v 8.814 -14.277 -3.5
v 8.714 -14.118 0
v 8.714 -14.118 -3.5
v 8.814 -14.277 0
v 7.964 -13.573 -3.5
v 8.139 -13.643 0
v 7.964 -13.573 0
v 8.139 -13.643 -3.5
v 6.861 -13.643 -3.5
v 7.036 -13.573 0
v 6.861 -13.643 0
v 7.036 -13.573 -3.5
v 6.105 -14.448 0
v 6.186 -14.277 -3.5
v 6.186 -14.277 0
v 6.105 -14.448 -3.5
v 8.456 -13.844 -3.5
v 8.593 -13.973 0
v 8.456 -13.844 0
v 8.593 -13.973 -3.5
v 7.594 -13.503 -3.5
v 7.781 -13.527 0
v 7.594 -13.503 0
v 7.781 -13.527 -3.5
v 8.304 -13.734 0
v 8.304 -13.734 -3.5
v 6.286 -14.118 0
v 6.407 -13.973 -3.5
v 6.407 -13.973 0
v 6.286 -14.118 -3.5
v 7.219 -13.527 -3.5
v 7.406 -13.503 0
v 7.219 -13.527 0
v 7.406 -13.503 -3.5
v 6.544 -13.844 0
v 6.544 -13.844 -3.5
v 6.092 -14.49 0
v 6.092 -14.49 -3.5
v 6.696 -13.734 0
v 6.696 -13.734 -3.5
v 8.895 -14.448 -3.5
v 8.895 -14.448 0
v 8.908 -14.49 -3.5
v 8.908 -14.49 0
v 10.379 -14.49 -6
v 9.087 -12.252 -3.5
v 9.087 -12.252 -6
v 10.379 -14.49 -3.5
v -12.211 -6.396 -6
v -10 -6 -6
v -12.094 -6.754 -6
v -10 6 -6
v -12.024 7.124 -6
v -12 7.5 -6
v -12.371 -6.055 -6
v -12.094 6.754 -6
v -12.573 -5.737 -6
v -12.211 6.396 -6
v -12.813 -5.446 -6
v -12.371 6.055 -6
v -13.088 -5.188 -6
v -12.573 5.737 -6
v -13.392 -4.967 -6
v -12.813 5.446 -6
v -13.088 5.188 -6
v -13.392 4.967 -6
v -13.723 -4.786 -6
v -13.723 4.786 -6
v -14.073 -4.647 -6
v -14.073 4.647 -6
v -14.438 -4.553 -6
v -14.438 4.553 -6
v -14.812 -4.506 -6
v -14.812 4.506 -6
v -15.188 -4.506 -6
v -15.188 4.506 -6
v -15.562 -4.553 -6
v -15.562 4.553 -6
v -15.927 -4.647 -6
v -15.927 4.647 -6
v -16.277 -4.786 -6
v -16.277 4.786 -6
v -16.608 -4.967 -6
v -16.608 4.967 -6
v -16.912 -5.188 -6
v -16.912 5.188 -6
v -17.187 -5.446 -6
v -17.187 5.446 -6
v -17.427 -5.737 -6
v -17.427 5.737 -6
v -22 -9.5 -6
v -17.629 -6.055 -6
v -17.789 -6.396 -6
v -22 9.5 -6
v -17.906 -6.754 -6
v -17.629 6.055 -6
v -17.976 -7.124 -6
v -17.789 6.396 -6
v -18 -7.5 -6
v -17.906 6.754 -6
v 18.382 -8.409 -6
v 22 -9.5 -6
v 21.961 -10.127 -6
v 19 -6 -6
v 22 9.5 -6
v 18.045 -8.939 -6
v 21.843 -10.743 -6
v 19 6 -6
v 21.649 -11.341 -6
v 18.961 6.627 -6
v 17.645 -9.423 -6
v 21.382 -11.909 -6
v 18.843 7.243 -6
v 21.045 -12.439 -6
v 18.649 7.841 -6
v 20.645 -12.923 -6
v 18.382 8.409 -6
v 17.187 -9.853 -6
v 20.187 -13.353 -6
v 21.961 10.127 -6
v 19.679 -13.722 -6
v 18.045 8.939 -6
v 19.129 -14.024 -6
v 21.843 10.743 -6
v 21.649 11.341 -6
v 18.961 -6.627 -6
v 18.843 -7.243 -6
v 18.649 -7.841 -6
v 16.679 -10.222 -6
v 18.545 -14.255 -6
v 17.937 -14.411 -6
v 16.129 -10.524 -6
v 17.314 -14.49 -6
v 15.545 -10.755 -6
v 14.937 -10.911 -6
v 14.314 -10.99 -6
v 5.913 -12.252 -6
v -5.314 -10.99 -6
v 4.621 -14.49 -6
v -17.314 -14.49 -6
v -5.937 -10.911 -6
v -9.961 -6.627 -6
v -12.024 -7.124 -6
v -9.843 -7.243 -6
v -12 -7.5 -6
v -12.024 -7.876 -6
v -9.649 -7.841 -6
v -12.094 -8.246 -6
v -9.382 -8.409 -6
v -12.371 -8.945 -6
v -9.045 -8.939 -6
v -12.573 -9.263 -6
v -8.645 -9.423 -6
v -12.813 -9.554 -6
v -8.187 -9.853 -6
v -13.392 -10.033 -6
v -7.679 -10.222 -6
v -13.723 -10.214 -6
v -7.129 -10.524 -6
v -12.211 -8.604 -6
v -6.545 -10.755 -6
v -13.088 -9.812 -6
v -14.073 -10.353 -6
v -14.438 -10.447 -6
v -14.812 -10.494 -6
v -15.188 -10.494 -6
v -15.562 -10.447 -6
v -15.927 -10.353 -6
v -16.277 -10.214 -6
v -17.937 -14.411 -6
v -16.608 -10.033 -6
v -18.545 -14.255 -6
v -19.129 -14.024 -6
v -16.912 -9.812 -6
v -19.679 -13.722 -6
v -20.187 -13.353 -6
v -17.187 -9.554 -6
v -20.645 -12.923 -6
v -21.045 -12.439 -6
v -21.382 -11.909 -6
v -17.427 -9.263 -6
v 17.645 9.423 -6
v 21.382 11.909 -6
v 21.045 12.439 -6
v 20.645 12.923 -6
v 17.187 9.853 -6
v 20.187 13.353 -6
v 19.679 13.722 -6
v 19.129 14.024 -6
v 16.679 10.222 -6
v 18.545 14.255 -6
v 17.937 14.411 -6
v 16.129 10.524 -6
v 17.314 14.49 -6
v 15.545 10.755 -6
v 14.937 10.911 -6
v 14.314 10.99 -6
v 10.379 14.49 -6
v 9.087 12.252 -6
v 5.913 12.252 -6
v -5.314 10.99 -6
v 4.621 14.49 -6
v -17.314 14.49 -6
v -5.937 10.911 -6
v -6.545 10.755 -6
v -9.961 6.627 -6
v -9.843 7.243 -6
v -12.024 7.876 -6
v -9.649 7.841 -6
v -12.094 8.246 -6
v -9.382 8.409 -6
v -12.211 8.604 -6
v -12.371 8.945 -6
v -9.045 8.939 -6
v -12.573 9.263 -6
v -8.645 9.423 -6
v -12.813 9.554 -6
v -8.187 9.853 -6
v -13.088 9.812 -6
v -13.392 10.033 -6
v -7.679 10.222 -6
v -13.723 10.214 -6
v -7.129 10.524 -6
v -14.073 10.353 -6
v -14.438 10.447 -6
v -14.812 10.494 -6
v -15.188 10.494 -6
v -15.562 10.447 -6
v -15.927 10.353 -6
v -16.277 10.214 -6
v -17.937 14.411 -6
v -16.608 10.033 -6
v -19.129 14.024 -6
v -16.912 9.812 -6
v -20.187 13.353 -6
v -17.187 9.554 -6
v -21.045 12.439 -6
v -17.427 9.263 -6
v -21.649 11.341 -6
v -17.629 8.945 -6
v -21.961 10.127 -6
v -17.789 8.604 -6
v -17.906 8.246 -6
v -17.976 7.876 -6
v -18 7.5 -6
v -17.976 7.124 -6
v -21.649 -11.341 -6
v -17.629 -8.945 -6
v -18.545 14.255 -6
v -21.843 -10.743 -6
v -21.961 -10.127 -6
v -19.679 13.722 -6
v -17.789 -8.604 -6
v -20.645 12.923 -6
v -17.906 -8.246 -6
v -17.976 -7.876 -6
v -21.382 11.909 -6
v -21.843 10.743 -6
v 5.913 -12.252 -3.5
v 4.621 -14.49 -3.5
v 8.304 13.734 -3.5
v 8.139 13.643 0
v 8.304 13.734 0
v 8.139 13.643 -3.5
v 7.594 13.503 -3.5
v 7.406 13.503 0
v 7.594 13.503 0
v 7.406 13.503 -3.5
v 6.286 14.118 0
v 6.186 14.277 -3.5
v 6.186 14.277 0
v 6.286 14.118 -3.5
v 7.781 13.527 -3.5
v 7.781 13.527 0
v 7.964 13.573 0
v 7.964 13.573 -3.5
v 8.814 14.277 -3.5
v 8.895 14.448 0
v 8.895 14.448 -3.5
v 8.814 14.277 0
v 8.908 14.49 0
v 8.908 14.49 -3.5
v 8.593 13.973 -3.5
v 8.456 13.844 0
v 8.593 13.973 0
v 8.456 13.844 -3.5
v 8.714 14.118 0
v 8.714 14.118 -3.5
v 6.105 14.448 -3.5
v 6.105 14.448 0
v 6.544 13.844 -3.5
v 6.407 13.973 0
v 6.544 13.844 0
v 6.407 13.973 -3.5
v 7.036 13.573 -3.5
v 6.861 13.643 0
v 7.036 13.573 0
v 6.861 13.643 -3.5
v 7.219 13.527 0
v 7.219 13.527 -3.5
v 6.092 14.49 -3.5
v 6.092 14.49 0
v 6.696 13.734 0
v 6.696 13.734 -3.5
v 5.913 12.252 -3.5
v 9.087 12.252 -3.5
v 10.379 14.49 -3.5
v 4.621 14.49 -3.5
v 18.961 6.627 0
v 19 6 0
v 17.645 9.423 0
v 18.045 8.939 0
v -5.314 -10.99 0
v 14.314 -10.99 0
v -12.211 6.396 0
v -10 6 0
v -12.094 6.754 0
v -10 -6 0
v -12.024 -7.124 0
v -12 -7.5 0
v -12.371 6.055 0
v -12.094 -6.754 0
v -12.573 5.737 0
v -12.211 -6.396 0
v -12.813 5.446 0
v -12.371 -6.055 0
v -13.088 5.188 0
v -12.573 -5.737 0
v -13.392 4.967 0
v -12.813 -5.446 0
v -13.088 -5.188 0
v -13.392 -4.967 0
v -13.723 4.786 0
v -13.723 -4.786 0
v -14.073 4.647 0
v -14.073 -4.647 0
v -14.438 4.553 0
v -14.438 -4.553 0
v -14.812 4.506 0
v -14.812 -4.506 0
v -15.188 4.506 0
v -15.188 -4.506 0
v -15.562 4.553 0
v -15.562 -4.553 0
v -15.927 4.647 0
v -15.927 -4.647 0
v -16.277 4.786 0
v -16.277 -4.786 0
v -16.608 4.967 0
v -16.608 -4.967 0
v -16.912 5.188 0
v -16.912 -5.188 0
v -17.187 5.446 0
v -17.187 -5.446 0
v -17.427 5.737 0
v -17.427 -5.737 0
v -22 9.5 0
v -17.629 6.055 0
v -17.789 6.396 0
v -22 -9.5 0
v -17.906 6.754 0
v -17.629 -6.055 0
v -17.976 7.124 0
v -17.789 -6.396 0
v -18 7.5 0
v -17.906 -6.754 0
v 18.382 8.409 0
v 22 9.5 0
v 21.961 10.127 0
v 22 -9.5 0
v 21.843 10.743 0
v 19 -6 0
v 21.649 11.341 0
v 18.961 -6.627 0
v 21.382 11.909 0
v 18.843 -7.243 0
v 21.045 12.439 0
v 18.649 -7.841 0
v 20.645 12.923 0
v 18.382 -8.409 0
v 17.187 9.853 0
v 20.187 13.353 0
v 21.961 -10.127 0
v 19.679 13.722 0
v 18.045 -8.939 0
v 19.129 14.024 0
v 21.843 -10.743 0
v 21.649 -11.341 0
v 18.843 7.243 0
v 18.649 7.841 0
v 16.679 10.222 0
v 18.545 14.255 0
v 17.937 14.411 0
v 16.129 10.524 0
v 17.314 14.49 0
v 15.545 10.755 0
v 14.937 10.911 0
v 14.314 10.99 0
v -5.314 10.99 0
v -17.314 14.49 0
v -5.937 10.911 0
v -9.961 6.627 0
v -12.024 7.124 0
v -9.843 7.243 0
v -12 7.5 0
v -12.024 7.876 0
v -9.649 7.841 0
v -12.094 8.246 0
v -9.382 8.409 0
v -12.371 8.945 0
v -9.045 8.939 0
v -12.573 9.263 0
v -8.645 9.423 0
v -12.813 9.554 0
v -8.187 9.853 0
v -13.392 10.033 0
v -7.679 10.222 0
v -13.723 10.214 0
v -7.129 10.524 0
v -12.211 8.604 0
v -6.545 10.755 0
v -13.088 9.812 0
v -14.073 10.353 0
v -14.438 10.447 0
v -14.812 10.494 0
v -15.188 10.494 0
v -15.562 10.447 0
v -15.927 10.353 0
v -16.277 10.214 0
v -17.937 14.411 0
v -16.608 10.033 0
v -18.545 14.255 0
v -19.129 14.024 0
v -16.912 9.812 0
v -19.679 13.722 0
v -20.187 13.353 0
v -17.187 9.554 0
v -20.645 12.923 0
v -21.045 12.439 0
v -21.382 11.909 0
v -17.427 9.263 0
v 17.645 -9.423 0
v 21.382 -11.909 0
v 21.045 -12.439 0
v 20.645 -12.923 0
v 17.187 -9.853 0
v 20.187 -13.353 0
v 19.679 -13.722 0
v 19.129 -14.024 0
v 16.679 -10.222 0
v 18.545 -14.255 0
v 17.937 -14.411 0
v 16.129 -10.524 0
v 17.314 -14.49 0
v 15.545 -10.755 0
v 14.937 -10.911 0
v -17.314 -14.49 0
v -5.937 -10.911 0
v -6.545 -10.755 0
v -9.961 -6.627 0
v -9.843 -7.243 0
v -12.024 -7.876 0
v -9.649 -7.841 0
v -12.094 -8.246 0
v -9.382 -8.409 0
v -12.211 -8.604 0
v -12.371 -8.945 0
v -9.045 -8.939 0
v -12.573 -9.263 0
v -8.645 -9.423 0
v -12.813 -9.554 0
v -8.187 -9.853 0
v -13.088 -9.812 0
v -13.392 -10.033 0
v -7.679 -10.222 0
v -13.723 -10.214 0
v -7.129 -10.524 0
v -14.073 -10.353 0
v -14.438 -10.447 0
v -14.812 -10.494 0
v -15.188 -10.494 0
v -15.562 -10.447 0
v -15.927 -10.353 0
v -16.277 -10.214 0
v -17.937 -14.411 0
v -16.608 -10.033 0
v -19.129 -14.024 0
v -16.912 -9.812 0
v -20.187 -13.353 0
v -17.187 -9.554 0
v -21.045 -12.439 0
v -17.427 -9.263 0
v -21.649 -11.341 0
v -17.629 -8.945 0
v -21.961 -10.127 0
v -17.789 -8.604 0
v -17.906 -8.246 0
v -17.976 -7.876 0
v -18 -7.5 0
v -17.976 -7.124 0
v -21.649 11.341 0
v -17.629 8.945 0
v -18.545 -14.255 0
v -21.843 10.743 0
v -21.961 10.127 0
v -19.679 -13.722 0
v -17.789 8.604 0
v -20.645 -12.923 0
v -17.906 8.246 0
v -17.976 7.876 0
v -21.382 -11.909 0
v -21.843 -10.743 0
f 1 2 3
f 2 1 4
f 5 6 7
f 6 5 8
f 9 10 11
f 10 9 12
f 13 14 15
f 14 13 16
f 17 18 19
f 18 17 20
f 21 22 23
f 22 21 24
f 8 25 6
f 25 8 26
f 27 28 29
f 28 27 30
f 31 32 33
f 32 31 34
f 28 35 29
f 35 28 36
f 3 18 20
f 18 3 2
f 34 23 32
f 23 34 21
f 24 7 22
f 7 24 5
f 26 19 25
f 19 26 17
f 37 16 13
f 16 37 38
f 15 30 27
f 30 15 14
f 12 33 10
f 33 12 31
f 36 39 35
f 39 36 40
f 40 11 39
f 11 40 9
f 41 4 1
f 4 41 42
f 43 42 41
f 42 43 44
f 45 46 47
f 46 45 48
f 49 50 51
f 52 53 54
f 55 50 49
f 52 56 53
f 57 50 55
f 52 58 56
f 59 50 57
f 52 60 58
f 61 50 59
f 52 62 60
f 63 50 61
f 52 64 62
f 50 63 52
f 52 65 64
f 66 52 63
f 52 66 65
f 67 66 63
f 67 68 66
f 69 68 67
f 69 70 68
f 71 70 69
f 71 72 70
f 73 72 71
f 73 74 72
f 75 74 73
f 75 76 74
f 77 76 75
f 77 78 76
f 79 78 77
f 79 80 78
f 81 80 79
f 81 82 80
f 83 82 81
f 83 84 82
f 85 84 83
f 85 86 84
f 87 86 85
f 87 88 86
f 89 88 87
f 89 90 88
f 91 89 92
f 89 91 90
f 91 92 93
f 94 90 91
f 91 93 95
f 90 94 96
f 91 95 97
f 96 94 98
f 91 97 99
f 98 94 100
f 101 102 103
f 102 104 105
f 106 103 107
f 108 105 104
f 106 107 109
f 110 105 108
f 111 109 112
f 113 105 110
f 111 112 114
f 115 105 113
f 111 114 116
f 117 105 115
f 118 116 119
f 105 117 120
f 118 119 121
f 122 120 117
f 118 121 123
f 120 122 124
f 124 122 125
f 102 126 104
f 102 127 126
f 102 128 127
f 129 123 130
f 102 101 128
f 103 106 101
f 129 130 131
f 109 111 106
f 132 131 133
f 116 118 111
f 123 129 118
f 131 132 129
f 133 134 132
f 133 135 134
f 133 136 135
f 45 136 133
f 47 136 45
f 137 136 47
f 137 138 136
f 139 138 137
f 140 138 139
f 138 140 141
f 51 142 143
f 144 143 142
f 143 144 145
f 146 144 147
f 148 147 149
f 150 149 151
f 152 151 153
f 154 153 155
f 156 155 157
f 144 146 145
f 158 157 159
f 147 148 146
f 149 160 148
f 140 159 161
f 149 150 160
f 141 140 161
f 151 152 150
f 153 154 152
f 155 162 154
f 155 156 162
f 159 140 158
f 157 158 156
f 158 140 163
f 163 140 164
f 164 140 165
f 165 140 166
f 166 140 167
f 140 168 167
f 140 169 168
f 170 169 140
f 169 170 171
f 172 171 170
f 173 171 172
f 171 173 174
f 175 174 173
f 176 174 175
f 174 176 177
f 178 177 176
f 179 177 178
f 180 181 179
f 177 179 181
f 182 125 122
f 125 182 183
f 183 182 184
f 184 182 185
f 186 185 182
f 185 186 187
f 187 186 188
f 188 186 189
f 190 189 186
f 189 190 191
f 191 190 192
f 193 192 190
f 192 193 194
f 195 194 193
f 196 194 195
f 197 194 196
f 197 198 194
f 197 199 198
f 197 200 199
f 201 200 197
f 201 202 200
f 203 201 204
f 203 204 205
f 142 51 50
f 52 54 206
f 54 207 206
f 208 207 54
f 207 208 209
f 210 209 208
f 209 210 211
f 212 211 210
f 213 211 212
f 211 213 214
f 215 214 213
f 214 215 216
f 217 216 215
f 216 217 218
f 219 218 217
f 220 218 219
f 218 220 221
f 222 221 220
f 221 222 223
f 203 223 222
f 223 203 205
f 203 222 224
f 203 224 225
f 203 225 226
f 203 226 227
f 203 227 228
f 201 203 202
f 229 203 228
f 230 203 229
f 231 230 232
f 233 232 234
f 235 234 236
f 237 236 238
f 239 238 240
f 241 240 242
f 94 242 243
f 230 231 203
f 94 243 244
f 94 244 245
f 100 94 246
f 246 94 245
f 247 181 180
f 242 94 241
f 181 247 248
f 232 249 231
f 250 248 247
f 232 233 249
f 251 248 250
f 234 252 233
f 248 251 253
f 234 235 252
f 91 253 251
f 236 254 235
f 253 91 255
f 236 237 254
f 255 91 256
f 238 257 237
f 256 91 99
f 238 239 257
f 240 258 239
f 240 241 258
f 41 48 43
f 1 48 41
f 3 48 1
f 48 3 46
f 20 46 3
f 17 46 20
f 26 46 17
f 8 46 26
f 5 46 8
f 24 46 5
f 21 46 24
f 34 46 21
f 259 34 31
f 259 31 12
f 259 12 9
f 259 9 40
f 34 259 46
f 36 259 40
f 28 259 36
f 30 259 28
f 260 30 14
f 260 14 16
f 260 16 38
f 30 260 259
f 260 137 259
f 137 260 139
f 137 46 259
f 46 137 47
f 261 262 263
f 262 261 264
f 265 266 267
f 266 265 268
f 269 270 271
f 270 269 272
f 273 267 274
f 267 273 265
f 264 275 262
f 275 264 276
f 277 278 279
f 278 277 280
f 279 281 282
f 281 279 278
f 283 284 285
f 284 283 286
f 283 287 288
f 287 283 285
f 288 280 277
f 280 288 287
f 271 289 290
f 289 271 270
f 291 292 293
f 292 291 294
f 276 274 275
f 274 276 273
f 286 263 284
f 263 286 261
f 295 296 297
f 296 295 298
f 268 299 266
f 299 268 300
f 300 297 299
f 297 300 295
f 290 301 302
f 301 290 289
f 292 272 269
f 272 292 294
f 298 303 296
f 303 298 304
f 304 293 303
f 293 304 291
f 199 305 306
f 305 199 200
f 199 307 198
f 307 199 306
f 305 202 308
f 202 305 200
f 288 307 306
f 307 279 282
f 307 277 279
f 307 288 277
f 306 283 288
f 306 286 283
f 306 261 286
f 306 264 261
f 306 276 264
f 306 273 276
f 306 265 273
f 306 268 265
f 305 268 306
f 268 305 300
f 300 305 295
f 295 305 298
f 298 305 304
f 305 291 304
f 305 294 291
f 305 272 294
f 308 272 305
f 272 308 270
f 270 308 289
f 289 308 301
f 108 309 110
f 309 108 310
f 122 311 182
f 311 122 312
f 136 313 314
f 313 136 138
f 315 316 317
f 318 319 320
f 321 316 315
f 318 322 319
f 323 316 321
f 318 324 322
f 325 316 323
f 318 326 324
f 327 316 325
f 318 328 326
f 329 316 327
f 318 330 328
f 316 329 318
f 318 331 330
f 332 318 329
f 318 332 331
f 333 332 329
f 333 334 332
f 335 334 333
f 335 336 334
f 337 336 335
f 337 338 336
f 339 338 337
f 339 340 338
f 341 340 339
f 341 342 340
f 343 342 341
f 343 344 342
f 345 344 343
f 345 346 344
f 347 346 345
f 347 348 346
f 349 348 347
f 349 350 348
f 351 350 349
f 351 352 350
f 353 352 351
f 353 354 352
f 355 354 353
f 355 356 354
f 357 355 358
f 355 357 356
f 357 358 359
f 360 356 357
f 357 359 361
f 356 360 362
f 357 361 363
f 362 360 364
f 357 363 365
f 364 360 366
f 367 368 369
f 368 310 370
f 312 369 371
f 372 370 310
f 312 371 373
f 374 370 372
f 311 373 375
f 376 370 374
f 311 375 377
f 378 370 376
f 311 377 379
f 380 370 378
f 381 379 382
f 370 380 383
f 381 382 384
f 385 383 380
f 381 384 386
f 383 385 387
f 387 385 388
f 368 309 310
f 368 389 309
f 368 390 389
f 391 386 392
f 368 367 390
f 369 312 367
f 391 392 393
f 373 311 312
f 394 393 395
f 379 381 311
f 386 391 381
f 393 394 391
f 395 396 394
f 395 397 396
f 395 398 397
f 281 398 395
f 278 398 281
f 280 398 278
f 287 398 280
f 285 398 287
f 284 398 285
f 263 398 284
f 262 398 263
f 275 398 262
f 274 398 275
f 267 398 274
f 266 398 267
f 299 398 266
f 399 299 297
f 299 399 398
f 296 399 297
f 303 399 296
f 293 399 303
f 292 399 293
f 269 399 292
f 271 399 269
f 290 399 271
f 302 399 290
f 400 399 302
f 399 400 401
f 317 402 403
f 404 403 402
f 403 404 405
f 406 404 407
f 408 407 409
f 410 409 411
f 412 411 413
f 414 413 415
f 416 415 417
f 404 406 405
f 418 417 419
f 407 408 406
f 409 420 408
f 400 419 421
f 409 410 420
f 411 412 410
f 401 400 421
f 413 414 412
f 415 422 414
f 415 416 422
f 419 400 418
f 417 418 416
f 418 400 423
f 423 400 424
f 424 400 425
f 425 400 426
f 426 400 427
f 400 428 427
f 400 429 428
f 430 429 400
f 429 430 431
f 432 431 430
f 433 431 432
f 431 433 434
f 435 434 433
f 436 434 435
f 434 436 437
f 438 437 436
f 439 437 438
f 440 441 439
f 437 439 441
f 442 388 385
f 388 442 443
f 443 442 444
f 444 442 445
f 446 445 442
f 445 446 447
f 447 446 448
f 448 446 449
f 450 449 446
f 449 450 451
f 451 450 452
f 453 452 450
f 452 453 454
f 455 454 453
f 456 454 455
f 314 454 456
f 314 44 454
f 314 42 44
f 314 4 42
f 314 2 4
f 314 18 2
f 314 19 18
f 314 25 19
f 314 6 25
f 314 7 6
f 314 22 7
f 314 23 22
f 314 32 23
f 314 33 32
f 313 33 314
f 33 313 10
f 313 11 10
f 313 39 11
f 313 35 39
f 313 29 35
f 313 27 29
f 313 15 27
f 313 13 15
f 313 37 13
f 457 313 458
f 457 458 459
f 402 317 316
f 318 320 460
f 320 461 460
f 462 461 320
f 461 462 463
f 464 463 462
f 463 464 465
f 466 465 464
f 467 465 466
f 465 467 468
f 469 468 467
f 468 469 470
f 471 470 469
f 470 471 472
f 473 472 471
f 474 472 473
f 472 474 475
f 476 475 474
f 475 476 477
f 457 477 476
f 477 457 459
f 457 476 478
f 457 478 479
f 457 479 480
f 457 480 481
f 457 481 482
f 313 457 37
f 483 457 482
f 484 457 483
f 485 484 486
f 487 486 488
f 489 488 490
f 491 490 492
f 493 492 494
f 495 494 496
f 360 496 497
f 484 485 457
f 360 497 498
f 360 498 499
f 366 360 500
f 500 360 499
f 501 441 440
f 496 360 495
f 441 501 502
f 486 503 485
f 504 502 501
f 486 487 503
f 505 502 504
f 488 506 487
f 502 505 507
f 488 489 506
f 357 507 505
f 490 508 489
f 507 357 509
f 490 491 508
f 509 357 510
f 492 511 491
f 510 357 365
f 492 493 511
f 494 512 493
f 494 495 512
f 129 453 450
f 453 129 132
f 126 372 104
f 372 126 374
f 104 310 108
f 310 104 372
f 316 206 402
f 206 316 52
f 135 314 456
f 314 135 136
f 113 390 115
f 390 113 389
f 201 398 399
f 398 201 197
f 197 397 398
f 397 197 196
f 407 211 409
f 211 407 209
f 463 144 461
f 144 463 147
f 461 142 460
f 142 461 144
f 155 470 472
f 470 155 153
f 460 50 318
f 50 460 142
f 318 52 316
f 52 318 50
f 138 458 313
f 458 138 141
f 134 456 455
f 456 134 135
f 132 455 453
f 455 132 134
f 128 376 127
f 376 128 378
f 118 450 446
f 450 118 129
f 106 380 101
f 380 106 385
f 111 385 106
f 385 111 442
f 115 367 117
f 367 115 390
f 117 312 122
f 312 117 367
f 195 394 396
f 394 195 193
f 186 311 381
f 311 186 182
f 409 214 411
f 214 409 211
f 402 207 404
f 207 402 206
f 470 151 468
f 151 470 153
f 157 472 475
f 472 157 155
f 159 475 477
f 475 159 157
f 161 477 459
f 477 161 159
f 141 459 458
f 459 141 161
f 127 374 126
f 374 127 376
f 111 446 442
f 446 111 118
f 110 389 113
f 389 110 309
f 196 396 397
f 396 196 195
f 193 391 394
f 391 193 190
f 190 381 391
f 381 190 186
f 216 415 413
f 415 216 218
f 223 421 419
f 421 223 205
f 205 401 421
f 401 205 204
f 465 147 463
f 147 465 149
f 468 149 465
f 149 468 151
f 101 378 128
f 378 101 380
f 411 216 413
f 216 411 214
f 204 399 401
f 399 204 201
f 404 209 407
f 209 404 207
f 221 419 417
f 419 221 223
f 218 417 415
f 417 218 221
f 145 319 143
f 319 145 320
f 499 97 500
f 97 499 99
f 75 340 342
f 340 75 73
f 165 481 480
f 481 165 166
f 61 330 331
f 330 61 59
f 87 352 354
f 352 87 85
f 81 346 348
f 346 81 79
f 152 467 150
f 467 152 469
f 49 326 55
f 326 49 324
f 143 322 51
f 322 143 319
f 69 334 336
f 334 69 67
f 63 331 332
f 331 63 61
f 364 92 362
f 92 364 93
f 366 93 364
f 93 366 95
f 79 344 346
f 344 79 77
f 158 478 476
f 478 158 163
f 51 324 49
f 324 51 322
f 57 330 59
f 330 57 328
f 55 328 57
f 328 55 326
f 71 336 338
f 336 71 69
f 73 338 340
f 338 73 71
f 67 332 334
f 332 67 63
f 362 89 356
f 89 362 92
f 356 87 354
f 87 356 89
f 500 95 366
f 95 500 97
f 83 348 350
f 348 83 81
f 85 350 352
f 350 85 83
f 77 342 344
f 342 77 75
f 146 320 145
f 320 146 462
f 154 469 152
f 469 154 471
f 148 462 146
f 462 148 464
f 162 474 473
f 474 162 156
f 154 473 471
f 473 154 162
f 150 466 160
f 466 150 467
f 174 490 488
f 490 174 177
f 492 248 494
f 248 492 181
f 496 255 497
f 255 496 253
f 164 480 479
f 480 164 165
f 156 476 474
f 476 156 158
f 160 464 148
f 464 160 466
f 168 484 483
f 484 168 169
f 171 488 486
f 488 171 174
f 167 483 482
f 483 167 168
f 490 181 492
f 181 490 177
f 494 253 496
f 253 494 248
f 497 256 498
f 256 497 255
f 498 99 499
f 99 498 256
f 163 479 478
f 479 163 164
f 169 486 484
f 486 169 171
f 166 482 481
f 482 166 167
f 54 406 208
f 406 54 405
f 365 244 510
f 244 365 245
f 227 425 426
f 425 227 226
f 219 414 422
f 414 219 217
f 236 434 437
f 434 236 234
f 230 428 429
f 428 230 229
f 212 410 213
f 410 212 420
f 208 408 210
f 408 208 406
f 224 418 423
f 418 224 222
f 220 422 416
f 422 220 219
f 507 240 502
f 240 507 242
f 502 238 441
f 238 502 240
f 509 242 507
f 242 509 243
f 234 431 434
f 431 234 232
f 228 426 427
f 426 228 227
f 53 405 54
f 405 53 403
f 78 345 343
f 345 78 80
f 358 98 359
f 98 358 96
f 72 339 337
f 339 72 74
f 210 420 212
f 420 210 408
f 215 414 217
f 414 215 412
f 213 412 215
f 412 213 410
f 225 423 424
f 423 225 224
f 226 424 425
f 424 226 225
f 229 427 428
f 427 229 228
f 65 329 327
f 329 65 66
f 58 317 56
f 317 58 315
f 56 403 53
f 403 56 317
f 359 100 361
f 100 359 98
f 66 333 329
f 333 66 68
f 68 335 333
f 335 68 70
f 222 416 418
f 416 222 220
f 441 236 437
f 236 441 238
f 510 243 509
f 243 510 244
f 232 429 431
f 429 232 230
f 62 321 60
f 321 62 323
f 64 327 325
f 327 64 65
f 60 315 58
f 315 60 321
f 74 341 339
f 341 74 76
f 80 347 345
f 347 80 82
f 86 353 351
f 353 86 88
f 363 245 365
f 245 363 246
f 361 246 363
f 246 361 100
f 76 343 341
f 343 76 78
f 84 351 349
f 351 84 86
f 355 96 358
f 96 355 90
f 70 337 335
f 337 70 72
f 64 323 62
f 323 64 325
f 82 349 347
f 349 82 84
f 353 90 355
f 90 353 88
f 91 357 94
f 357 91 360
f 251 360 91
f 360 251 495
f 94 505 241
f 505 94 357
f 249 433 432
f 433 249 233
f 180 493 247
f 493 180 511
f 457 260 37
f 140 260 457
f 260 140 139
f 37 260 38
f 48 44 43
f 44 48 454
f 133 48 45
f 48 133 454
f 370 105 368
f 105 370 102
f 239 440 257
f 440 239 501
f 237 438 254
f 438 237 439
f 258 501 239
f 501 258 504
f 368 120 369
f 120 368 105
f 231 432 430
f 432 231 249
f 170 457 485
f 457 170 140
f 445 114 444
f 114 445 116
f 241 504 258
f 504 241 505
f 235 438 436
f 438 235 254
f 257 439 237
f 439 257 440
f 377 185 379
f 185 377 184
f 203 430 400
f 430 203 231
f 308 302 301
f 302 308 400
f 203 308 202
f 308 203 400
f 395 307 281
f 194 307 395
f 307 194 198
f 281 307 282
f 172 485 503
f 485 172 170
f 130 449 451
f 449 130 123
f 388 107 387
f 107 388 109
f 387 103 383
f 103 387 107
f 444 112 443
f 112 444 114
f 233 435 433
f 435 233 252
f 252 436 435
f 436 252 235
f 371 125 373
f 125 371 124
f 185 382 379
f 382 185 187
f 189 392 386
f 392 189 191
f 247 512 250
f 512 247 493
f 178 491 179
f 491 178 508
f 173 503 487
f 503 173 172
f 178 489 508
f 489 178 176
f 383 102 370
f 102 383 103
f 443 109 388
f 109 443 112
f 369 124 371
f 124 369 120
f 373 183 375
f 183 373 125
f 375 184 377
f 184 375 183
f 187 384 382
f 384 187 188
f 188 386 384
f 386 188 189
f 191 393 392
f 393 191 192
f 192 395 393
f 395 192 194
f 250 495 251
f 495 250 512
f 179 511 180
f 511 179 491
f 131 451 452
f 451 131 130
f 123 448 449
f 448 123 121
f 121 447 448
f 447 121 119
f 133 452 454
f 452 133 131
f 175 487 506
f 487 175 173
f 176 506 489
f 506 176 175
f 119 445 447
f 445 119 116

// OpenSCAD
$fn = 50;


difference() {
	union() {
		translate(v = [0, 0, -6]) {
			hull() {
				translate(v = [-17.0000000000, 9.5000000000, 0]) {
					cylinder(h = 6, r = 5);
				}
				translate(v = [17.0000000000, 9.5000000000, 0]) {
					cylinder(h = 6, r = 5);
				}
				translate(v = [-17.0000000000, -9.5000000000, 0]) {
					cylinder(h = 6, r = 5);
				}
				translate(v = [17.0000000000, -9.5000000000, 0]) {
					cylinder(h = 6, r = 5);
				}
			}
		}
	}
	union() {
		translate(v = [7.5000000000, -15, -6]) {
			rotate(a = [0, 0, 0]) {
				difference() {
					union() {
						translate(v = [0, 0, -50.0000000000]) {
							cylinder(h = 100, r = 1.5000000000);
						}
						translate(v = [0, 0, -50.0000000000]) {
							cylinder(h = 100, r = 1.5000000000);
						}
						linear_extrude(height = 2.5000000000) {
							polygon(points = [[3.1735000000, 0.0000000000], [1.5867500000, 2.7483316189], [-1.5867500000, 2.7483316189], [-3.1735000000, 0.0000000000], [-1.5867500000, -2.7483316189], [1.5867500000, -2.7483316189]]);
						}
						translate(v = [0, 0, -50.0000000000]) {
							cylinder(h = 100, r = 1.5000000000);
						}
					}
					union();
				}
			}
		}
		translate(v = [7.5000000000, 15, -6]) {
			rotate(a = [0, 0, 0]) {
				difference() {
					union() {
						translate(v = [0, 0, -50.0000000000]) {
							cylinder(h = 100, r = 1.5000000000);
						}
						translate(v = [0, 0, -50.0000000000]) {
							cylinder(h = 100, r = 1.5000000000);
						}
						linear_extrude(height = 2.5000000000) {
							polygon(points = [[3.1735000000, 0.0000000000], [1.5867500000, 2.7483316189], [-1.5867500000, 2.7483316189], [-3.1735000000, 0.0000000000], [-1.5867500000, -2.7483316189], [1.5867500000, -2.7483316189]]);
						}
						translate(v = [0, 0, -50.0000000000]) {
							cylinder(h = 100, r = 1.5000000000);
						}
					}
					union();
				}
			}
		}
		translate(v = [0, 0, -3]) {
			rotate(a = [0, 0, 180]) {
				difference() {
					union() {
						translate(v = [-4.5000000000, 0, -3]) {
							#hull() {
								translate(v = [-9.5000000000, 6.0000000000, 0]) {
									cylinder(h = 6, r = 5);
								}
								translate(v = [9.5000000000, 6.0000000000, 0]) {
									cylinder(h = 6, r = 5);
								}
								translate(v = [-9.5000000000, -6.0000000000, 0]) {
									cylinder(h = 6, r = 5);
								}
								translate(v = [9.5000000000, -6.0000000000, 0]) {
									cylinder(h = 6, r = 5);
								}
							}
						}
					}
					union();
				}
			}
		}
		translate(v = [-15.0000000000, -7.5000000000, -50.0000000000]) {
			cylinder(h = 100, r = 3.0000000000);
		}
		translate(v = [-15.0000000000, 7.5000000000, -50.0000000000]) {
			cylinder(h = 100, r = 3.0000000000);
		}
		translate(v = [-15.0000000000, 7.5000000000, -50.0000000000]) {
			cylinder(h = 100, r = 3.0000000000);
		}
		translate(v = [0.0000000000, 7.5000000000, -50.0000000000]) {
			cylinder(h = 100, r = 3.0000000000);
		}
		translate(v = [15.0000000000, 7.5000000000, -50.0000000000]) {
			cylinder(h = 100, r = 3.0000000000);
		}
		translate(v = [-15.0000000000, -7.5000000000, -50.0000000000]) {
			cylinder(h = 100, r = 3.0000000000);
		}
		translate(v = [0.0000000000, -7.5000000000, -50.0000000000]) {
			cylinder(h = 100, r = 3.0000000000);
		}
		translate(v = [15.0000000000, -7.5000000000, -50.0000000000]) {
			cylinder(h = 100, r = 3.0000000000);
		}
	}
}
